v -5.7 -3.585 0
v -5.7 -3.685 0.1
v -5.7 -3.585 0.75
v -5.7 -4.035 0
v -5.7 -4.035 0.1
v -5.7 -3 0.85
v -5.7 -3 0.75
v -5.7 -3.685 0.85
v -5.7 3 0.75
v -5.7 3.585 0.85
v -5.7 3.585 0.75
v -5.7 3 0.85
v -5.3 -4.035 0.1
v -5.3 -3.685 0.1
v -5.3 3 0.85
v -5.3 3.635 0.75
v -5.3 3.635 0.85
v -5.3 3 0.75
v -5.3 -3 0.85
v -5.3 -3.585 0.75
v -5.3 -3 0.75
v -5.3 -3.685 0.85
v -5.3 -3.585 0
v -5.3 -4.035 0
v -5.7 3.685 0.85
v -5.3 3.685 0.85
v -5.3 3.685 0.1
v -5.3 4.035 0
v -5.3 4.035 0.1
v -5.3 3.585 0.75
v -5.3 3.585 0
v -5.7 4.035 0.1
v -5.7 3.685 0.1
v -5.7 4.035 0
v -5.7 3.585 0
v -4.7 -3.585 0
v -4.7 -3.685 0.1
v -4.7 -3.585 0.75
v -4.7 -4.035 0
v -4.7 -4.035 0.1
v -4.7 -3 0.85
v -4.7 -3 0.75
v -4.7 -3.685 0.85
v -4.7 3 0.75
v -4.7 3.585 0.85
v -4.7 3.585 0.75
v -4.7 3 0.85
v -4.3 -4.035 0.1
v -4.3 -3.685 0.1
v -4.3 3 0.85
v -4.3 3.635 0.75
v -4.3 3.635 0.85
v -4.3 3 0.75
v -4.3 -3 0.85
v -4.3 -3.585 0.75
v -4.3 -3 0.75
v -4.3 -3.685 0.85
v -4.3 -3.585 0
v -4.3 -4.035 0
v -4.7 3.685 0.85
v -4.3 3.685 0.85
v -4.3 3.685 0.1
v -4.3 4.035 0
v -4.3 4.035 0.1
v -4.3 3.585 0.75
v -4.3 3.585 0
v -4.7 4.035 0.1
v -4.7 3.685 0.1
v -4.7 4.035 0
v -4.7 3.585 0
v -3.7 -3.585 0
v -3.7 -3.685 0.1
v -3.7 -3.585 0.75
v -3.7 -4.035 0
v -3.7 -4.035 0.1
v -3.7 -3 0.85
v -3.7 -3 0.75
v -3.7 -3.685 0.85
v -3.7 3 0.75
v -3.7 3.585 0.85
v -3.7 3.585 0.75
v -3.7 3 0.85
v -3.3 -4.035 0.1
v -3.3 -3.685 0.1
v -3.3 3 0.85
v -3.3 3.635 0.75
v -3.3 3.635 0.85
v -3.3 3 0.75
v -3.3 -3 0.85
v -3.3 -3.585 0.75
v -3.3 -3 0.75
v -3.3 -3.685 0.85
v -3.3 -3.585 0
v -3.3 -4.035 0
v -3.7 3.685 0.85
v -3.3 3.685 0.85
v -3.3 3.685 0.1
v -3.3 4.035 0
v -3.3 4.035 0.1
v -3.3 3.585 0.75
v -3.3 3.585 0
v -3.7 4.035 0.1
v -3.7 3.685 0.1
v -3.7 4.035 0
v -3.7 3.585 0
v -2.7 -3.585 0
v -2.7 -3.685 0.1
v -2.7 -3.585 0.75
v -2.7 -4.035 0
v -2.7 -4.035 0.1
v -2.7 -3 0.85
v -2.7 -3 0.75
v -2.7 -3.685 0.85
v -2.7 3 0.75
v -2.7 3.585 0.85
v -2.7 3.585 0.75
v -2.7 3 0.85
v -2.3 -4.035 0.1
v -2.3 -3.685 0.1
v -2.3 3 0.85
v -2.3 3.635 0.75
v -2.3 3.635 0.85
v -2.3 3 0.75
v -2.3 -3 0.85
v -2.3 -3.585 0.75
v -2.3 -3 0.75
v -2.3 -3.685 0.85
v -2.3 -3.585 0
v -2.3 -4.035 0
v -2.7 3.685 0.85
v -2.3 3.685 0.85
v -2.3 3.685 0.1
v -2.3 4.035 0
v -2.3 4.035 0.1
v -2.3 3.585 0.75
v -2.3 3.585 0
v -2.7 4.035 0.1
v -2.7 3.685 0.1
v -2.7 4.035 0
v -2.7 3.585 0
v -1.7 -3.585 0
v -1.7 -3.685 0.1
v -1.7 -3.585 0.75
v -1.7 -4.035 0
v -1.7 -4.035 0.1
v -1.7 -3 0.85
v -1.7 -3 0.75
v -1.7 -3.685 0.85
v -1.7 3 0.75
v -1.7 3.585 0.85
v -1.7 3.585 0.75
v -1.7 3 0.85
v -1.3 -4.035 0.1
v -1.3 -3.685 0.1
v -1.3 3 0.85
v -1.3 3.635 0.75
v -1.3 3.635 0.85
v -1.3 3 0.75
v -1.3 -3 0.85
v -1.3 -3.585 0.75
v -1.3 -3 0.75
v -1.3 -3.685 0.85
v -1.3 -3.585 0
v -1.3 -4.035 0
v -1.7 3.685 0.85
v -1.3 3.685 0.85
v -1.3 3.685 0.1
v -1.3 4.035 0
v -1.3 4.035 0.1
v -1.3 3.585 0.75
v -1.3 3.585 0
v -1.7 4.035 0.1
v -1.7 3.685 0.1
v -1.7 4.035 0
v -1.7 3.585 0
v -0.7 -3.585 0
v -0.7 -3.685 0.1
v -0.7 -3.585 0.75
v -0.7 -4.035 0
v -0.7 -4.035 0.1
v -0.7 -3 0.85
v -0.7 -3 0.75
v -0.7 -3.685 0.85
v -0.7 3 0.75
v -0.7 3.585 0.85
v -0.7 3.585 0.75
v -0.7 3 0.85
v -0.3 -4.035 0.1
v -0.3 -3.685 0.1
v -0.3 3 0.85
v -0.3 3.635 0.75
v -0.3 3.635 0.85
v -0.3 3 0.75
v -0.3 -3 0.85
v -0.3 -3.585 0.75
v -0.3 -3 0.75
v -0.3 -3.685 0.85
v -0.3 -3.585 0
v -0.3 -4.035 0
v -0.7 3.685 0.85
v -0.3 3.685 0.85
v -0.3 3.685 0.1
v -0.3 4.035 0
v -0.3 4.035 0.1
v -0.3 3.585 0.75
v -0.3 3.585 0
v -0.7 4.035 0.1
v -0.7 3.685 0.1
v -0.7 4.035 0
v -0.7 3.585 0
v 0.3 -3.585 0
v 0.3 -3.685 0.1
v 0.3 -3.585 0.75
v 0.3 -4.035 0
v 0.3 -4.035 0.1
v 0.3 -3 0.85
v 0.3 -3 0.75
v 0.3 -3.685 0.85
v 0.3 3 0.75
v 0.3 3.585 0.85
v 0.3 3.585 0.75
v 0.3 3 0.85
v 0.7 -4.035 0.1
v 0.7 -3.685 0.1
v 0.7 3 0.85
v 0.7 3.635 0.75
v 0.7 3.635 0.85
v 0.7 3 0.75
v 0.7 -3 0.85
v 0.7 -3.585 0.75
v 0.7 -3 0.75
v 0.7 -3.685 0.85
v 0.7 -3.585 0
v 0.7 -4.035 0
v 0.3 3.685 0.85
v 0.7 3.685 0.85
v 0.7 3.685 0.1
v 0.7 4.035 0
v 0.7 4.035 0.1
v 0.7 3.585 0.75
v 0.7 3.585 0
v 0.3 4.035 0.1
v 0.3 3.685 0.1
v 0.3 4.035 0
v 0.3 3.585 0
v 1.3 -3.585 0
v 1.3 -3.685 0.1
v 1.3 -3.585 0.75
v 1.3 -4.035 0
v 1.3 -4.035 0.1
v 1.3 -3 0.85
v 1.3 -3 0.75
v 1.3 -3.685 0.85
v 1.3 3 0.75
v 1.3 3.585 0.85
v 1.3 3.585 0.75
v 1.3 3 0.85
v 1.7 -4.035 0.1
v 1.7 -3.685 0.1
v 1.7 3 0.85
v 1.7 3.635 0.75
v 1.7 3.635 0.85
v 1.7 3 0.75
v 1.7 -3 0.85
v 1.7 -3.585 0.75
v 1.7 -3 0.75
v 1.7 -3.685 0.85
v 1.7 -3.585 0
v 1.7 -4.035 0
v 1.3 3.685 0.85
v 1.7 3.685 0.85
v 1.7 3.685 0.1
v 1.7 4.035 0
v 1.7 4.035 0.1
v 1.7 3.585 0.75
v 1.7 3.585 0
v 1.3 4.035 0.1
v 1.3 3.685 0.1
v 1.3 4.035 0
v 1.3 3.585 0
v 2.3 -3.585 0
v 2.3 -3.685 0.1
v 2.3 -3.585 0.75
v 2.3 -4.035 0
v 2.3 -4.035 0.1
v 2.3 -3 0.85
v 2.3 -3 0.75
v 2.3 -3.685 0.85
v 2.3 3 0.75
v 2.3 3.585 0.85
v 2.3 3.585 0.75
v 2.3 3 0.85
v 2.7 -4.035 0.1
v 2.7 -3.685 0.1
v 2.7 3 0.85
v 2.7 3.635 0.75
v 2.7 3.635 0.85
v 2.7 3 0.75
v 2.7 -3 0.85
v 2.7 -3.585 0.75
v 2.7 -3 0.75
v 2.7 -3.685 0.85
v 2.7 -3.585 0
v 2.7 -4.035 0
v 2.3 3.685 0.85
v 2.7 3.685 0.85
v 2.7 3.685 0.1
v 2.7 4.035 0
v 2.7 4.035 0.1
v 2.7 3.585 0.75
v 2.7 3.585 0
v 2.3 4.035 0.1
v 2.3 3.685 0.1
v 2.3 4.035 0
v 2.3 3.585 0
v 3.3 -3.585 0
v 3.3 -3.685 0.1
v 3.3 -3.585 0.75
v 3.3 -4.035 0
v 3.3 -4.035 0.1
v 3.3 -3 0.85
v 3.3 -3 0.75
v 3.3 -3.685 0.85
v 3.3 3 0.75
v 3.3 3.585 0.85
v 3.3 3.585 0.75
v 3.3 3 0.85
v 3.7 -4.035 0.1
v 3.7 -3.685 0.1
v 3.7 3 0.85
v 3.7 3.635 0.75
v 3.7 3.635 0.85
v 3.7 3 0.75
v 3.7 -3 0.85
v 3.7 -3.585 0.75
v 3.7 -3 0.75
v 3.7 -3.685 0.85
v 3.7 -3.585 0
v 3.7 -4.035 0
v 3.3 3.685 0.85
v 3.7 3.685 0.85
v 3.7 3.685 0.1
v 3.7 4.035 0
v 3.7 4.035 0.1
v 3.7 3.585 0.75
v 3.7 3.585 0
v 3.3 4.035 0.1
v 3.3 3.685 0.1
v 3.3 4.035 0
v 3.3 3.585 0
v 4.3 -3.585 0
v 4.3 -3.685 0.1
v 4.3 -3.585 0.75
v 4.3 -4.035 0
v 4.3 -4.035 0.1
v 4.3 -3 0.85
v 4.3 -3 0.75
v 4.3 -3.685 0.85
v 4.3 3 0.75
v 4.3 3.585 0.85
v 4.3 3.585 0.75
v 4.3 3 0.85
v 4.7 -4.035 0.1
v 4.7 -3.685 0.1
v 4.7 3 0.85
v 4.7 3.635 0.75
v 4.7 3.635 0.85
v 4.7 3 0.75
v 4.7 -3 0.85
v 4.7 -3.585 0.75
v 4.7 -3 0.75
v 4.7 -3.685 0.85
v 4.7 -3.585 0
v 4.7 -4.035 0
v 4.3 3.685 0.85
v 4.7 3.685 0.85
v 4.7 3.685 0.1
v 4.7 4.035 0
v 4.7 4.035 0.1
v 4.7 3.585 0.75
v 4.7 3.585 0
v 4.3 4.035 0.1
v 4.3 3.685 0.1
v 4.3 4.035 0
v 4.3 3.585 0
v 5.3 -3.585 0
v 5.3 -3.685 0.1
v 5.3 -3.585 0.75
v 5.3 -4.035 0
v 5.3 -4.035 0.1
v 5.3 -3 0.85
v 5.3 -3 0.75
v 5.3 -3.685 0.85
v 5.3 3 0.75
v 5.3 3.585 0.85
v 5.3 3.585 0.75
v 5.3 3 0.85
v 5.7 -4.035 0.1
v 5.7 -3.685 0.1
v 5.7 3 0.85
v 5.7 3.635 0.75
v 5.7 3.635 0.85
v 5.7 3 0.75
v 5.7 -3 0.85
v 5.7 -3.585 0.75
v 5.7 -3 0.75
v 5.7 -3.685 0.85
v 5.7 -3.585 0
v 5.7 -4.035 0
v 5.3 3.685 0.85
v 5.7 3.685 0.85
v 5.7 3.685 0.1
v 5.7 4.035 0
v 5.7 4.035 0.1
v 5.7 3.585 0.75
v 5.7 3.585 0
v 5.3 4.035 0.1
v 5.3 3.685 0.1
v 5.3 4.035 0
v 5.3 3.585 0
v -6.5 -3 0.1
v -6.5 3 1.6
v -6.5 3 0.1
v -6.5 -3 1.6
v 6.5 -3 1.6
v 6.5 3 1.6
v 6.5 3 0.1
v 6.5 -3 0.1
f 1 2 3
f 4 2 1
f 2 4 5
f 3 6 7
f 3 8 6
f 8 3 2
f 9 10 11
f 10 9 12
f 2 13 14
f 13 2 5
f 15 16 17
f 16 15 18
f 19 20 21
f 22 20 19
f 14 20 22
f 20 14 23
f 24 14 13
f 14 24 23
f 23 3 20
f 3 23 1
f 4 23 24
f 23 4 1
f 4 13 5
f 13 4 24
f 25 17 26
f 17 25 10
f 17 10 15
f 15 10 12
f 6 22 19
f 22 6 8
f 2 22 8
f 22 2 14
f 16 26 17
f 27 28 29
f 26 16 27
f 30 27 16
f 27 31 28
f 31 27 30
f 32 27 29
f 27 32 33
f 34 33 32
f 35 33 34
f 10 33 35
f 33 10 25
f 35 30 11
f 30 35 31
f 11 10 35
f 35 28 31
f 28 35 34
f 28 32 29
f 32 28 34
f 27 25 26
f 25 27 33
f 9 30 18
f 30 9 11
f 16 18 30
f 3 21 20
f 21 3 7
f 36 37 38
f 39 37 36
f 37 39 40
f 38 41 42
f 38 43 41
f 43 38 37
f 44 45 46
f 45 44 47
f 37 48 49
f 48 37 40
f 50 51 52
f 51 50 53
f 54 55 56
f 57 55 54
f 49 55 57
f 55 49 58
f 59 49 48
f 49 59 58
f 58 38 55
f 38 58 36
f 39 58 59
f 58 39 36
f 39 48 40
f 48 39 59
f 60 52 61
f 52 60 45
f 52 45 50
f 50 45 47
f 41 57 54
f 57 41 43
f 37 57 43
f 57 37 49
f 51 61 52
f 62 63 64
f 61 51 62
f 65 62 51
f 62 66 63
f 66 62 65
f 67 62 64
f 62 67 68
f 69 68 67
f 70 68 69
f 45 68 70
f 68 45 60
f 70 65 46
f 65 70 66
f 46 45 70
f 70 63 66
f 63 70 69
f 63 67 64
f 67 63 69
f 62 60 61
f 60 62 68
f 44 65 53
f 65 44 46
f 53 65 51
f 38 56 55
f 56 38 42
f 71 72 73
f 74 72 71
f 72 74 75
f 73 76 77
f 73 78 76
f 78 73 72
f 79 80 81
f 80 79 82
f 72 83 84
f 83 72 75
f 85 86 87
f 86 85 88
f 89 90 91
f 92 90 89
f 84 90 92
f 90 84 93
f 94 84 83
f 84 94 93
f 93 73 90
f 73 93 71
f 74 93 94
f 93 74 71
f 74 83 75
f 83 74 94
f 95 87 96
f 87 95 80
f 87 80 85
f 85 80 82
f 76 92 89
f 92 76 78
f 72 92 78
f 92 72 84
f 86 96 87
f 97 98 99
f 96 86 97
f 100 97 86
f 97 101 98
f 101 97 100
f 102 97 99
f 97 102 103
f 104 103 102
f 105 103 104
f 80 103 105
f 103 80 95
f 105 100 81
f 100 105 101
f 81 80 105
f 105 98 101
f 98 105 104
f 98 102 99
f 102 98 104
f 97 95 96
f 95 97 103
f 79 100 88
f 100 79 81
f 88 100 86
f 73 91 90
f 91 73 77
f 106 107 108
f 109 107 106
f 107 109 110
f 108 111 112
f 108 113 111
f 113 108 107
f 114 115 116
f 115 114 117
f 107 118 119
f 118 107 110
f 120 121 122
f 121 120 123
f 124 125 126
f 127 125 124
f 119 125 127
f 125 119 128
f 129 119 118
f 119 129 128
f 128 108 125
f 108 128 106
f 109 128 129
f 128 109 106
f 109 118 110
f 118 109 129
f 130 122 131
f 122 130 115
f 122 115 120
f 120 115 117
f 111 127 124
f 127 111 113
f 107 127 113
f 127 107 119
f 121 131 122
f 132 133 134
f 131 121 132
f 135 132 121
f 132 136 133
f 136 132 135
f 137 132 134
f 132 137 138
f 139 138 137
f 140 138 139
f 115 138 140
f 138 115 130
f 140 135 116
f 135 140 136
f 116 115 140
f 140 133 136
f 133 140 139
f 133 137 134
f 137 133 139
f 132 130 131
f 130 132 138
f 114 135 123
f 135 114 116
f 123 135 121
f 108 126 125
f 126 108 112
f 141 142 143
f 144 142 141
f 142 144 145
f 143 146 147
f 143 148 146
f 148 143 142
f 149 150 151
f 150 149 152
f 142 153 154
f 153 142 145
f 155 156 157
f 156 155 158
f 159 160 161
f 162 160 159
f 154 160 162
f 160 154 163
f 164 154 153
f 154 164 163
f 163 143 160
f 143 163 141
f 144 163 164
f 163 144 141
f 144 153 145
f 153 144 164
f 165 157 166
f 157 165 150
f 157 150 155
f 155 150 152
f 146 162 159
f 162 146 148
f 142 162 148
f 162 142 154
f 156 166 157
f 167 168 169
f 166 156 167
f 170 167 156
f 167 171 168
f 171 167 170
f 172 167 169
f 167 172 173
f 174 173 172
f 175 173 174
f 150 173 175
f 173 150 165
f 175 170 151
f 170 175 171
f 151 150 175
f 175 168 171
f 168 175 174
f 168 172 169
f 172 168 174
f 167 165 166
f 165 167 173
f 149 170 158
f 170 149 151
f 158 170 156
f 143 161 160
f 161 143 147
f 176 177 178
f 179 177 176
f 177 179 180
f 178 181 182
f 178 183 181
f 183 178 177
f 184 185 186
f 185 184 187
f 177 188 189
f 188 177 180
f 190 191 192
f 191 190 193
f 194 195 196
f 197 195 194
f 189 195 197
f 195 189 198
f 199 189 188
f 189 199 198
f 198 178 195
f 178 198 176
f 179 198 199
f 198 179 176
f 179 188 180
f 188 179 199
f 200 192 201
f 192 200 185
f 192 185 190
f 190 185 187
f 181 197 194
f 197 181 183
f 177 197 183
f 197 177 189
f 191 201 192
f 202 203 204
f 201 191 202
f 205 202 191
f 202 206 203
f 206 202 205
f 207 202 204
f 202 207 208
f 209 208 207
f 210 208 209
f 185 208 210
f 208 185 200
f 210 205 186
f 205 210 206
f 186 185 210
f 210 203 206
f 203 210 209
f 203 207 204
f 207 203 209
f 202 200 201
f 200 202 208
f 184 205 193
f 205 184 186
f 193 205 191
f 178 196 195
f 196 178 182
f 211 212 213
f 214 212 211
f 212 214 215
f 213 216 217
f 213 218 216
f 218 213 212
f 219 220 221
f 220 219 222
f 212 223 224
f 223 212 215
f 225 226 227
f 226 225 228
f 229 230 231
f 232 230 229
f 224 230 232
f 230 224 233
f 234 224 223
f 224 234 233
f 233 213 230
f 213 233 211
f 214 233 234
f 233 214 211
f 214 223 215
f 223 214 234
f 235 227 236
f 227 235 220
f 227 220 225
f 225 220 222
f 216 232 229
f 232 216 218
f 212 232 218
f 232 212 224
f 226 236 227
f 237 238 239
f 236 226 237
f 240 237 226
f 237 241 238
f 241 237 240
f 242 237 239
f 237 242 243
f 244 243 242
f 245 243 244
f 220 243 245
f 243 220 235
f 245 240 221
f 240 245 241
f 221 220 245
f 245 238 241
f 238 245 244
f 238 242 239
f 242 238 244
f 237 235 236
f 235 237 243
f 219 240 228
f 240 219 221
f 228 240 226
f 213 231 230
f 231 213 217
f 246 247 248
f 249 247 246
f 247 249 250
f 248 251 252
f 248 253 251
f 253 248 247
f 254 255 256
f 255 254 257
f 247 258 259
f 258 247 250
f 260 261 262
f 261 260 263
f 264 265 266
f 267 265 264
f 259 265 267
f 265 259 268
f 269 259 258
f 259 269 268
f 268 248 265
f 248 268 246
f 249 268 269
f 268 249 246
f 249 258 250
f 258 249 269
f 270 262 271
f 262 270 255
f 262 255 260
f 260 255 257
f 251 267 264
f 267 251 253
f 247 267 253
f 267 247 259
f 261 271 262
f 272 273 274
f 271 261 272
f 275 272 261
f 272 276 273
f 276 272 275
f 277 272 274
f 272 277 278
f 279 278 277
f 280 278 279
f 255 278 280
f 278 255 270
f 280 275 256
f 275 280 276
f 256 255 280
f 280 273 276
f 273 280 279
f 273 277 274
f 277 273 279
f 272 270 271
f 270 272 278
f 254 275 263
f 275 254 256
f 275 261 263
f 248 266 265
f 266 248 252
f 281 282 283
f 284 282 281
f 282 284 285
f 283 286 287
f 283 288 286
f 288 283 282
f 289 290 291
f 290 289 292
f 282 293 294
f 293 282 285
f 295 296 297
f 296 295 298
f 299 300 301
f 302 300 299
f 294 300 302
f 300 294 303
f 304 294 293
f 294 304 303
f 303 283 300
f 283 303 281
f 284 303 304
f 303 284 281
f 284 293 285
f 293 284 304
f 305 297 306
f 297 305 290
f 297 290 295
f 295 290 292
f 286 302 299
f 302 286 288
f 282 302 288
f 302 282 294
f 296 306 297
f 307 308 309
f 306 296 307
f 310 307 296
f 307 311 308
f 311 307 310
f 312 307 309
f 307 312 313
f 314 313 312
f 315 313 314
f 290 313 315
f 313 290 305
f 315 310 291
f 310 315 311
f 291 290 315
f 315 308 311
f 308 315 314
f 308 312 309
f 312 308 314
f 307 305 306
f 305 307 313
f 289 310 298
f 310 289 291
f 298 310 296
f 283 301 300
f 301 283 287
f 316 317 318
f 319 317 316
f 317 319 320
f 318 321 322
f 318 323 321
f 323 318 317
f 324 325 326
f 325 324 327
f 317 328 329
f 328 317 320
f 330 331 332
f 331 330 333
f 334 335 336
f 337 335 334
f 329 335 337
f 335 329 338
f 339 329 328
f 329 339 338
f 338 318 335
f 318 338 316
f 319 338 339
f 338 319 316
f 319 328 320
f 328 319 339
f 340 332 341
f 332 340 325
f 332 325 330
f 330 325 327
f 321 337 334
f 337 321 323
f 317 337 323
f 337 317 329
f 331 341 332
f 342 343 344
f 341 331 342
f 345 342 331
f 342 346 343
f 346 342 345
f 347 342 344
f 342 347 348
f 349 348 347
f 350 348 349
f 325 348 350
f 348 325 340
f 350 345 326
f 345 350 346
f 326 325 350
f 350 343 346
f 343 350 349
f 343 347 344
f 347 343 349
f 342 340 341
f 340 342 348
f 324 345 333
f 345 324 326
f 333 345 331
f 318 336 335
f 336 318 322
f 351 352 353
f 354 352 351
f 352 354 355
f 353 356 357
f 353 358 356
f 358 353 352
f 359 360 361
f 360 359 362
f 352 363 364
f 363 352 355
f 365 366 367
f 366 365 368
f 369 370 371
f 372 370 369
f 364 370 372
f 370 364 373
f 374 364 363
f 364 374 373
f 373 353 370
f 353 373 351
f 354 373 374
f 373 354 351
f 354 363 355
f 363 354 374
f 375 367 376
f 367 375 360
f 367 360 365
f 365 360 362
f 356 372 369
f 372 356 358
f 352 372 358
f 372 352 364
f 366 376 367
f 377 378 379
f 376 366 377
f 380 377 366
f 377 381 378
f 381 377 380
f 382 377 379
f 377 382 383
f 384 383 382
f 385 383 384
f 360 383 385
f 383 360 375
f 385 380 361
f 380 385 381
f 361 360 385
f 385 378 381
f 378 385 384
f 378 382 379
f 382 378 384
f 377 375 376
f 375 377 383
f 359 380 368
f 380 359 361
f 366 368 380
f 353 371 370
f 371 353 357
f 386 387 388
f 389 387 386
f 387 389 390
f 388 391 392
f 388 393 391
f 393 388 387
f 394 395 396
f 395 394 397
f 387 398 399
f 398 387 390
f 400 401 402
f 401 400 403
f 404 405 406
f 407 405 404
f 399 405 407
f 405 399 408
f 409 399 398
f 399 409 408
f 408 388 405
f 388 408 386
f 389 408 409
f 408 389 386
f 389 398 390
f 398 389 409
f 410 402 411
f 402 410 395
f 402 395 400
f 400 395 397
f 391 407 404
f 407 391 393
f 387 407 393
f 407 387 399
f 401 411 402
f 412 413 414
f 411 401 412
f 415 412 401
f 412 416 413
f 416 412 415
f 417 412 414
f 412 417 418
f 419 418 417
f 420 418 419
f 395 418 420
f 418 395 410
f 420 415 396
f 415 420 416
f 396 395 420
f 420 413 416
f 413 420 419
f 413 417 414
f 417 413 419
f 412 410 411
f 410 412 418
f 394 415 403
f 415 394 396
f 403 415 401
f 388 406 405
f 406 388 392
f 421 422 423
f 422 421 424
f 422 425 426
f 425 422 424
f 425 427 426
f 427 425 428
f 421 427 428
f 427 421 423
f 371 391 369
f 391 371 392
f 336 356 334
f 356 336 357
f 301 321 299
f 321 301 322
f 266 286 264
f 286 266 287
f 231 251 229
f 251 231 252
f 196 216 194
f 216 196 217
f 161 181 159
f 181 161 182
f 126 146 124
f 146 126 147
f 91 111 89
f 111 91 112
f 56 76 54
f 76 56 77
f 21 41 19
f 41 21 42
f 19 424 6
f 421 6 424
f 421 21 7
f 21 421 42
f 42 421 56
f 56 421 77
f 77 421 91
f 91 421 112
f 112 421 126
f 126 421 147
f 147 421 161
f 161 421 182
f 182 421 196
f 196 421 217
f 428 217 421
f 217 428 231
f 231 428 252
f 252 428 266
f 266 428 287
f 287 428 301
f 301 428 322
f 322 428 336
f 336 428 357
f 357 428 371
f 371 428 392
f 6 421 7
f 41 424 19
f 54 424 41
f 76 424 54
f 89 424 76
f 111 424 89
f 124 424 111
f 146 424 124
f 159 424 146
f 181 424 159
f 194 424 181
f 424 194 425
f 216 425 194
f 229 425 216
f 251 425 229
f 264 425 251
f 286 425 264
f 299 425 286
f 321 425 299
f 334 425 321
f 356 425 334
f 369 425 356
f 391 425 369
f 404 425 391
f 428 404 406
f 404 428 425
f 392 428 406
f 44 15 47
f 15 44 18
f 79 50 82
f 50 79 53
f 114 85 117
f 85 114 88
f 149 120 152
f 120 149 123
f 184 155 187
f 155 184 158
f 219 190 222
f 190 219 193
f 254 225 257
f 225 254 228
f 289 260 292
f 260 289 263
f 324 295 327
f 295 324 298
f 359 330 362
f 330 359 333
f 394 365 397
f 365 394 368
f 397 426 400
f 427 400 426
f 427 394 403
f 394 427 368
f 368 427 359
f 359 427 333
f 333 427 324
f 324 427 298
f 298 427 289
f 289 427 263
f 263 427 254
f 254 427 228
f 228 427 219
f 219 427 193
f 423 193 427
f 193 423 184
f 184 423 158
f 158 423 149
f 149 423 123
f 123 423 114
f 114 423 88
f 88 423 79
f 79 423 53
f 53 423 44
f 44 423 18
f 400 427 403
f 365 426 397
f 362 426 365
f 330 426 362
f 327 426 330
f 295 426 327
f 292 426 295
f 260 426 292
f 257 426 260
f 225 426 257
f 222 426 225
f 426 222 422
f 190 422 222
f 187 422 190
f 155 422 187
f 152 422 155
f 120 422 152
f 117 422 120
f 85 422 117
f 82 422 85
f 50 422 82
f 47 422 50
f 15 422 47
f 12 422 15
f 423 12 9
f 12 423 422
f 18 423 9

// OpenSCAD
off_ground = 0.1;
body_height = 1.5;

module body() {
    translate([0, 0, body_height/2 + off_ground]) {
        cube([13, 6, body_height], center=true);
    }
}


module half_pin(pin_width, pin_thickness, pin_height, pin_pad_length) {
    translate([0, 0, pin_thickness/2]) {
        cube([pin_width, pin_pad_length, pin_thickness], center=true);
    }
    translate([0,pin_pad_length/2 - pin_thickness/2,pin_height/2]) {
        cube([pin_width,pin_thickness,pin_height], center=true);
    }
}

module pin () {
    pin_width = 0.4;
    pin_thickness = 0.1;
    pin_height = off_ground + body_height/2;
    pin_pad_length = 0.45;
    between = 7.62;

    translate([0, -between/2, 0]) half_pin(pin_width, pin_thickness, pin_height, pin_pad_length);
    translate([0, between/2, 0]) rotate(180) half_pin(pin_width, pin_thickness, pin_height, pin_pad_length);
    translate([0, 0, pin_height-pin_thickness/2]) cube([pin_width,between - pin_pad_length+0.1,pin_thickness], center=true);
}

module pins () {
    pin_pitch = 1.0;
    for (i = [-5.5:1:5.5]) {
        translate([i, 0, 0]) pin();
    }
}

module mbi5024() {
    body();
    pins();
}

mbi5024();
